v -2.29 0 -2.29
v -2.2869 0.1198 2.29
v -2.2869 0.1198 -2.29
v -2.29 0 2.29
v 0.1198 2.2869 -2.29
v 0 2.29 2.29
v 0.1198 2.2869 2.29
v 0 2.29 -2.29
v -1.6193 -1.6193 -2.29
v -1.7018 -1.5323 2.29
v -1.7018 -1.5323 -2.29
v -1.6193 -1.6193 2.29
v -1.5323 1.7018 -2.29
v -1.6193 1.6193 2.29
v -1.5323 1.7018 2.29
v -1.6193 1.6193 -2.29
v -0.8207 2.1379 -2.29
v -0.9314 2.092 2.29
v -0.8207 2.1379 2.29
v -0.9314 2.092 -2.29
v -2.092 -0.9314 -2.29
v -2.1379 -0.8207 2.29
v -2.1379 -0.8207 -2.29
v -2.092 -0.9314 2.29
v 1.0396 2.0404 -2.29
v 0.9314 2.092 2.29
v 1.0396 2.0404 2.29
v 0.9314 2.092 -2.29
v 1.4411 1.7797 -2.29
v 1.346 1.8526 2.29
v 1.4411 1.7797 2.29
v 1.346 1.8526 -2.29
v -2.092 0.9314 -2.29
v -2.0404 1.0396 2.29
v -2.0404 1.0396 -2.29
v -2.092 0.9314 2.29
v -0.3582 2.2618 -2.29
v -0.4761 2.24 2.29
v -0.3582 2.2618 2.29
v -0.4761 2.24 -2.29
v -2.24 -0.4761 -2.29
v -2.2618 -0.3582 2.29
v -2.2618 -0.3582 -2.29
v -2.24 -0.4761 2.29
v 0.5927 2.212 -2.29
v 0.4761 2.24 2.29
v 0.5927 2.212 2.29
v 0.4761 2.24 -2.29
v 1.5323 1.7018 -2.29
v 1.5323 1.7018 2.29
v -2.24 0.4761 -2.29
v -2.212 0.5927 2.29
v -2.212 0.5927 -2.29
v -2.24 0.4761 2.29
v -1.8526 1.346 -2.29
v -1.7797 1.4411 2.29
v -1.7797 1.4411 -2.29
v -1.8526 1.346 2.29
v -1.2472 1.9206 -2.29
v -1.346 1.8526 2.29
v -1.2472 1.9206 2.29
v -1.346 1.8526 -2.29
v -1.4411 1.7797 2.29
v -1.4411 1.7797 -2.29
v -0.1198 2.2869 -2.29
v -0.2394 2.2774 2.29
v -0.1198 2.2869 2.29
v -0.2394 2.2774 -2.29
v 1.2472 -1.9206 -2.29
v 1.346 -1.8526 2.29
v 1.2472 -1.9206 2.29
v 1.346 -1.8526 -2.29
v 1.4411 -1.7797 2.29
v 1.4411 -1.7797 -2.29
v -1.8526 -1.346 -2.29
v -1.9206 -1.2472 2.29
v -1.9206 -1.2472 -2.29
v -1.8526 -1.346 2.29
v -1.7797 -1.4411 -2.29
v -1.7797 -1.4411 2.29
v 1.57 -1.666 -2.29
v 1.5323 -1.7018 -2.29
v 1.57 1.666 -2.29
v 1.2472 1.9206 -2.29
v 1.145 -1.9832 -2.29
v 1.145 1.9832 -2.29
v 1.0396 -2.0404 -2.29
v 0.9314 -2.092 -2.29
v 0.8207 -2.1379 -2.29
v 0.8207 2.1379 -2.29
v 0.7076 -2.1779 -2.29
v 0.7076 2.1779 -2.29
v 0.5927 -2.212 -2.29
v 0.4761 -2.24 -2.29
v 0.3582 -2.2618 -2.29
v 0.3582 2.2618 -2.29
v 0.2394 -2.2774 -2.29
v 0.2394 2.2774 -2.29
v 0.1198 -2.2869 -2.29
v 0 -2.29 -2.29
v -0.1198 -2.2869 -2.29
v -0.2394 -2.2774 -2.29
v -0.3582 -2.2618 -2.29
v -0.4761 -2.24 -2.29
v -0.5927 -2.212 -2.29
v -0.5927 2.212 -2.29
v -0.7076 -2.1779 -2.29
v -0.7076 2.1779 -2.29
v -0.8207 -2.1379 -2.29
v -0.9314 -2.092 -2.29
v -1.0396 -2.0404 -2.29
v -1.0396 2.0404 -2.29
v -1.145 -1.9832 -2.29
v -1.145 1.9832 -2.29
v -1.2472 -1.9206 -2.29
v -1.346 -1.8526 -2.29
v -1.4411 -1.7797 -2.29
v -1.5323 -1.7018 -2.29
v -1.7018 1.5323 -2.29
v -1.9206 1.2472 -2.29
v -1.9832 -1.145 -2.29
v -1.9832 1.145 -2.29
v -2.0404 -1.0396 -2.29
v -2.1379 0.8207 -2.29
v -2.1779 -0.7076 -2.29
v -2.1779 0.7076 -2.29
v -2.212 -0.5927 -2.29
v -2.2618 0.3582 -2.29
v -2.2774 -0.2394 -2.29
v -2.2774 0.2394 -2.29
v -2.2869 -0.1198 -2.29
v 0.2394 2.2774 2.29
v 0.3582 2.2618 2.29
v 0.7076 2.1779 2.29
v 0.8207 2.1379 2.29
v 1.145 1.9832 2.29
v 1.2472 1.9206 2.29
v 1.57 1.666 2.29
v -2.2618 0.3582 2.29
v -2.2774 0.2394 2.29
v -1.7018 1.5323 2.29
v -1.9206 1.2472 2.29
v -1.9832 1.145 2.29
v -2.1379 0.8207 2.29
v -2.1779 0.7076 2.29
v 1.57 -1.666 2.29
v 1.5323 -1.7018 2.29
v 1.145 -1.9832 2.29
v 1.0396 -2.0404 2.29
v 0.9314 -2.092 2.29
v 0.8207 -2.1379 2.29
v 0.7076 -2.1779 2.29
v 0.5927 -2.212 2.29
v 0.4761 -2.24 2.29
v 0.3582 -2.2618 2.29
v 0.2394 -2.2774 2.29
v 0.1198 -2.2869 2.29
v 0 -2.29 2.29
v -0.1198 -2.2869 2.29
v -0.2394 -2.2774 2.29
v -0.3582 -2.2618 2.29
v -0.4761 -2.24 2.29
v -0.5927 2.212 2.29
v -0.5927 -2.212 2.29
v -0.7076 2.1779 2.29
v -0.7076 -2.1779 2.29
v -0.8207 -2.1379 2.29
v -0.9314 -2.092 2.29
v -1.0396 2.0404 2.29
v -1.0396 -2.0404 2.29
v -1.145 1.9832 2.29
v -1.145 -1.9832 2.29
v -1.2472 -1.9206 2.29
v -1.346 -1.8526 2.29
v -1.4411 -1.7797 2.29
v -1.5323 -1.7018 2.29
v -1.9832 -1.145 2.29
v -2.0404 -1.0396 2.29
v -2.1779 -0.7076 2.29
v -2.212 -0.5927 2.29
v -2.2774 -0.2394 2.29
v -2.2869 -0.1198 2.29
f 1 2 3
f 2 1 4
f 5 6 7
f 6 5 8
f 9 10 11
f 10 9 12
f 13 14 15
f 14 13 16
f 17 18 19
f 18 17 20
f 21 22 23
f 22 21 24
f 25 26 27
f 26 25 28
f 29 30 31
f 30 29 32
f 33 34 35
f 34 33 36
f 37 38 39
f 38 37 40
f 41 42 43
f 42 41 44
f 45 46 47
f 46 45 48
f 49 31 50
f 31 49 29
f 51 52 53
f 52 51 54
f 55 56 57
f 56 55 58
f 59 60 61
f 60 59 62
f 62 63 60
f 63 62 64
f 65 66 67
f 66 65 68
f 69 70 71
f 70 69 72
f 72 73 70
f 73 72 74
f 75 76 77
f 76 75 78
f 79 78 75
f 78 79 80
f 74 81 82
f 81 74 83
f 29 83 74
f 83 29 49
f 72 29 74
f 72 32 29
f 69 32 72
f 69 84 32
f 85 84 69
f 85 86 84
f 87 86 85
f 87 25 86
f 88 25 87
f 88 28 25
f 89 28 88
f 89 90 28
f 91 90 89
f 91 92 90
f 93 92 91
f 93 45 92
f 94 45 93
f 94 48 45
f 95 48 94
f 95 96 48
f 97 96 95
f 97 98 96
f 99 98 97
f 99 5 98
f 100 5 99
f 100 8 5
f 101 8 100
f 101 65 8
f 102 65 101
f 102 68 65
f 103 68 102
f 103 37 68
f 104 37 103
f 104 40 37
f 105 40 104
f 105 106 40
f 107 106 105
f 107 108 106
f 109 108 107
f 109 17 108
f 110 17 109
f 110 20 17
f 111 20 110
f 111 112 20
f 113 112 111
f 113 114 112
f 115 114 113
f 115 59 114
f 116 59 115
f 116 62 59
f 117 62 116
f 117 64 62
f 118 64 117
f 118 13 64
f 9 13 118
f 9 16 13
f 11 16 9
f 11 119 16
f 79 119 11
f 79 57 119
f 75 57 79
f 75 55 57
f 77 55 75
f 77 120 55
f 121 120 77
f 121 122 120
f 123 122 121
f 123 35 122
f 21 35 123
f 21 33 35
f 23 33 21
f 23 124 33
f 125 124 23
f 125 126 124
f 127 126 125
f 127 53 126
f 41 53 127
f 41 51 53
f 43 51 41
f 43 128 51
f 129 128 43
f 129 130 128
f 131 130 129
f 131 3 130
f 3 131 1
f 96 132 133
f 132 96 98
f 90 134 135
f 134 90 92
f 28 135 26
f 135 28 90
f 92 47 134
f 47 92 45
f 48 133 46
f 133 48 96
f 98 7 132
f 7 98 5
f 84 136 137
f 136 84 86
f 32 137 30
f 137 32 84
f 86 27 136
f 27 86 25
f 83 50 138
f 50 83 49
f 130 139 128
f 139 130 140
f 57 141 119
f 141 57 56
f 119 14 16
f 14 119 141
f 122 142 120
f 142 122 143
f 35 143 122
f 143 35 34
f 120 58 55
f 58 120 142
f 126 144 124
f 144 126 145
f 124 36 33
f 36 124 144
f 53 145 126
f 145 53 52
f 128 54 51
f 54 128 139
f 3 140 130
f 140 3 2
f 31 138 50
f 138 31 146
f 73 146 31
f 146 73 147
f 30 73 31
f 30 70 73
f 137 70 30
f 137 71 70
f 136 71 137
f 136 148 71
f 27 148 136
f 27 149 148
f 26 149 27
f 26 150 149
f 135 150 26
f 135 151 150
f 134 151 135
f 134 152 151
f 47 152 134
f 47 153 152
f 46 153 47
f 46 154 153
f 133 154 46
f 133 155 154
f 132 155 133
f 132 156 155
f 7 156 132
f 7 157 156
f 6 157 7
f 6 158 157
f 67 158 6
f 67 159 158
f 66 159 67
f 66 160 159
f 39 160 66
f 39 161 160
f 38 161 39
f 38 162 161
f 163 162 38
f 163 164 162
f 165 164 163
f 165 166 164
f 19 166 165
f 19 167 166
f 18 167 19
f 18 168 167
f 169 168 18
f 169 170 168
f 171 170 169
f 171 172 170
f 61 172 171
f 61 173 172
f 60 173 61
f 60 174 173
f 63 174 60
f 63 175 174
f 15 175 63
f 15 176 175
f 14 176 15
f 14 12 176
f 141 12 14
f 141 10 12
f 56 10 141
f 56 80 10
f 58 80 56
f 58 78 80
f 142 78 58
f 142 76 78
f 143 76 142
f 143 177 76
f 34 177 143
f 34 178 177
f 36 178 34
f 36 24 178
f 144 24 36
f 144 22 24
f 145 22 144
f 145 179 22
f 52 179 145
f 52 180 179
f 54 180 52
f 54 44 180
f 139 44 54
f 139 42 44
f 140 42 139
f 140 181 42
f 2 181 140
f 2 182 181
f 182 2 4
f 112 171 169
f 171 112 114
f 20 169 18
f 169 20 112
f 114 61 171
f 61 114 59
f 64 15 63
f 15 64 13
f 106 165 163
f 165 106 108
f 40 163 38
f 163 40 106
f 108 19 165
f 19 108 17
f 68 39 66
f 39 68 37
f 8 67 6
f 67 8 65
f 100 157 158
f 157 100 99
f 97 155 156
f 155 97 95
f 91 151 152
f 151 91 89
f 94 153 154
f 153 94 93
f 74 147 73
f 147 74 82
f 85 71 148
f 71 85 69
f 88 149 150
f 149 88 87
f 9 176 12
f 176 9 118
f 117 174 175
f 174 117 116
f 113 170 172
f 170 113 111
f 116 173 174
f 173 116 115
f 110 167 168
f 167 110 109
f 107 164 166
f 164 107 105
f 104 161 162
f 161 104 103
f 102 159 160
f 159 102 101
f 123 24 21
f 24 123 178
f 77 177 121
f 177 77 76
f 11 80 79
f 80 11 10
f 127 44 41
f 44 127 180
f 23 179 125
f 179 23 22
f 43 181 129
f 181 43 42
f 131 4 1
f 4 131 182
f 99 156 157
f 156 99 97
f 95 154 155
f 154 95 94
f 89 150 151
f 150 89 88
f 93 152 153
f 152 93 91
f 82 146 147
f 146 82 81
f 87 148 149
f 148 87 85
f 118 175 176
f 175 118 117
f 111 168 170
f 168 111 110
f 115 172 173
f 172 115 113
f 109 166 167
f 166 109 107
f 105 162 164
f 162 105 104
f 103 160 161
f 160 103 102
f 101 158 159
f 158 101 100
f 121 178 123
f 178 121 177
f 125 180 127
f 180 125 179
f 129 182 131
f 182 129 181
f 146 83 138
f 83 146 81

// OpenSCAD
$fn=120;
rotate([0,0,0]){
union(){
difference(){
cylinder(4.58,2.29,2.29,center=true);
translate([3.86,0,0])cube([4.58,4.58,5], center=true);
}
}
//translate([0,0,-4.79])cube([0.46,0.38,5], center=true);
//translate([0,1.27,-4.79])cube([0.46,0.38,5], center=true);
//translate([0,-1.27,-4.79])cube([0.46,0.38,5], center=true);
}
